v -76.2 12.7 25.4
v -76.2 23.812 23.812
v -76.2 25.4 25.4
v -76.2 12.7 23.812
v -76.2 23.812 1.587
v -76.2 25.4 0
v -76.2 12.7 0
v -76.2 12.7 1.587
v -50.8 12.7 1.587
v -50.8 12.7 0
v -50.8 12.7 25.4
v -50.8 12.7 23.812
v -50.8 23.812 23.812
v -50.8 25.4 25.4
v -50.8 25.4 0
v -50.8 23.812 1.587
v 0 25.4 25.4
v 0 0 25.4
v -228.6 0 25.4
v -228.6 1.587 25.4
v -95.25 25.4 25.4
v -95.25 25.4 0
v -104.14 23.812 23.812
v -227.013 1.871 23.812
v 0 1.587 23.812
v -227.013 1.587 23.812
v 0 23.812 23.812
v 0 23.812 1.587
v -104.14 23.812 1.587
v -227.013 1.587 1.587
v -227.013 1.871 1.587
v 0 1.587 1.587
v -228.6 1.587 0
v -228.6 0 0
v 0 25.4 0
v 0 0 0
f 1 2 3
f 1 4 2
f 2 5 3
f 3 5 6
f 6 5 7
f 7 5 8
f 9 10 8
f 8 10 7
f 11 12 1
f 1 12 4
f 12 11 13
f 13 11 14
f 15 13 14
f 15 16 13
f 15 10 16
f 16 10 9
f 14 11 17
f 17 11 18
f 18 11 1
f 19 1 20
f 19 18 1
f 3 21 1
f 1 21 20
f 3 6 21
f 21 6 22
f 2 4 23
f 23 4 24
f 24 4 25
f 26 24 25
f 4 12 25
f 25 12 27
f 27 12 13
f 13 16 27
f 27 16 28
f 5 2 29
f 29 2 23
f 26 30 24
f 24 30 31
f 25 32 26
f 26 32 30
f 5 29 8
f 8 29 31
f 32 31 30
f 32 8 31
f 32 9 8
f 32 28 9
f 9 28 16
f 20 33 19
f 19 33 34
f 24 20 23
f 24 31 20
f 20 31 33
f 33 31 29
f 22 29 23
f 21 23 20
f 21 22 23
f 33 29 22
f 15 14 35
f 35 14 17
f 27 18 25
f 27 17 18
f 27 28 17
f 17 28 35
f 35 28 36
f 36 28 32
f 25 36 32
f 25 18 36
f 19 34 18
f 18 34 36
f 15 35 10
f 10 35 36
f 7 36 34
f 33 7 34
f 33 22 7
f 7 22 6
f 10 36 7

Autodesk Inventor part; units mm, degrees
ref_plane "YZ Plane" through (0, 0, 0) normal (1, 0, 0) x (0, 1, 0)
ref_plane "XZ Plane" through (0, 0, 0) normal (0, 1, 0) x (-1, 0, 0)
ref_plane "XY Plane" through (0, 0, 0) normal (0, 0, 1) x (1, 0, 0)
sketch "Sketch1" plane through (0, 0, 0) normal (0, 0, 1) x (1, 0, 0)
  line L0 (0, 0) -> (-228.6, 0)
  line L1 (-228.6, 0) -> (-228.6, 1.5875)
  line L2 (-228.6, 1.5875) -> (-95.25, 25.4)
  line L3 (-95.25, 25.4) -> (0, 25.4)
  line L4 (0, 25.4) -> (0, 0)
  dimension "d0" = 25.4
  dimension "d1" = 228.6
  dimension "d2" = 1.5875
  dimension "d3" = 95.25
extrude "Extrusion1" add sketch "Sketch1" along normal blind 25.4
shell "Shell1" thickness 1.5875 removed faces 2 at (-184.15, 9.525, 8.4667) at (0, 16.9333, 8.4667)
sketch "Sketch2" plane through (0, 0, 0) normal (0, 0, -1) x (-1, 0, 0)
  line L0 (95.25, 25.4) -> (0, 25.4) projected
  line L1 (0, 25.4) -> (0, 0) projected
  line L2 (50.8, 25.4) -> (76.2, 25.4)
  line L3 (76.2, 25.4) -> (76.2, 12.7)
  line L4 (76.2, 12.7) -> (50.8, 12.7)
  line L5 (50.8, 12.7) -> (50.8, 25.4)
  dimension "d7" = 25.4
  dimension "d8" = 12.7
  dimension "d9" = 50.8
extrude "Extrusion2" cut sketch "Sketch2" against normal through all
properties part number "Shovel_BottomFrame" material "Aluminum-6061"
